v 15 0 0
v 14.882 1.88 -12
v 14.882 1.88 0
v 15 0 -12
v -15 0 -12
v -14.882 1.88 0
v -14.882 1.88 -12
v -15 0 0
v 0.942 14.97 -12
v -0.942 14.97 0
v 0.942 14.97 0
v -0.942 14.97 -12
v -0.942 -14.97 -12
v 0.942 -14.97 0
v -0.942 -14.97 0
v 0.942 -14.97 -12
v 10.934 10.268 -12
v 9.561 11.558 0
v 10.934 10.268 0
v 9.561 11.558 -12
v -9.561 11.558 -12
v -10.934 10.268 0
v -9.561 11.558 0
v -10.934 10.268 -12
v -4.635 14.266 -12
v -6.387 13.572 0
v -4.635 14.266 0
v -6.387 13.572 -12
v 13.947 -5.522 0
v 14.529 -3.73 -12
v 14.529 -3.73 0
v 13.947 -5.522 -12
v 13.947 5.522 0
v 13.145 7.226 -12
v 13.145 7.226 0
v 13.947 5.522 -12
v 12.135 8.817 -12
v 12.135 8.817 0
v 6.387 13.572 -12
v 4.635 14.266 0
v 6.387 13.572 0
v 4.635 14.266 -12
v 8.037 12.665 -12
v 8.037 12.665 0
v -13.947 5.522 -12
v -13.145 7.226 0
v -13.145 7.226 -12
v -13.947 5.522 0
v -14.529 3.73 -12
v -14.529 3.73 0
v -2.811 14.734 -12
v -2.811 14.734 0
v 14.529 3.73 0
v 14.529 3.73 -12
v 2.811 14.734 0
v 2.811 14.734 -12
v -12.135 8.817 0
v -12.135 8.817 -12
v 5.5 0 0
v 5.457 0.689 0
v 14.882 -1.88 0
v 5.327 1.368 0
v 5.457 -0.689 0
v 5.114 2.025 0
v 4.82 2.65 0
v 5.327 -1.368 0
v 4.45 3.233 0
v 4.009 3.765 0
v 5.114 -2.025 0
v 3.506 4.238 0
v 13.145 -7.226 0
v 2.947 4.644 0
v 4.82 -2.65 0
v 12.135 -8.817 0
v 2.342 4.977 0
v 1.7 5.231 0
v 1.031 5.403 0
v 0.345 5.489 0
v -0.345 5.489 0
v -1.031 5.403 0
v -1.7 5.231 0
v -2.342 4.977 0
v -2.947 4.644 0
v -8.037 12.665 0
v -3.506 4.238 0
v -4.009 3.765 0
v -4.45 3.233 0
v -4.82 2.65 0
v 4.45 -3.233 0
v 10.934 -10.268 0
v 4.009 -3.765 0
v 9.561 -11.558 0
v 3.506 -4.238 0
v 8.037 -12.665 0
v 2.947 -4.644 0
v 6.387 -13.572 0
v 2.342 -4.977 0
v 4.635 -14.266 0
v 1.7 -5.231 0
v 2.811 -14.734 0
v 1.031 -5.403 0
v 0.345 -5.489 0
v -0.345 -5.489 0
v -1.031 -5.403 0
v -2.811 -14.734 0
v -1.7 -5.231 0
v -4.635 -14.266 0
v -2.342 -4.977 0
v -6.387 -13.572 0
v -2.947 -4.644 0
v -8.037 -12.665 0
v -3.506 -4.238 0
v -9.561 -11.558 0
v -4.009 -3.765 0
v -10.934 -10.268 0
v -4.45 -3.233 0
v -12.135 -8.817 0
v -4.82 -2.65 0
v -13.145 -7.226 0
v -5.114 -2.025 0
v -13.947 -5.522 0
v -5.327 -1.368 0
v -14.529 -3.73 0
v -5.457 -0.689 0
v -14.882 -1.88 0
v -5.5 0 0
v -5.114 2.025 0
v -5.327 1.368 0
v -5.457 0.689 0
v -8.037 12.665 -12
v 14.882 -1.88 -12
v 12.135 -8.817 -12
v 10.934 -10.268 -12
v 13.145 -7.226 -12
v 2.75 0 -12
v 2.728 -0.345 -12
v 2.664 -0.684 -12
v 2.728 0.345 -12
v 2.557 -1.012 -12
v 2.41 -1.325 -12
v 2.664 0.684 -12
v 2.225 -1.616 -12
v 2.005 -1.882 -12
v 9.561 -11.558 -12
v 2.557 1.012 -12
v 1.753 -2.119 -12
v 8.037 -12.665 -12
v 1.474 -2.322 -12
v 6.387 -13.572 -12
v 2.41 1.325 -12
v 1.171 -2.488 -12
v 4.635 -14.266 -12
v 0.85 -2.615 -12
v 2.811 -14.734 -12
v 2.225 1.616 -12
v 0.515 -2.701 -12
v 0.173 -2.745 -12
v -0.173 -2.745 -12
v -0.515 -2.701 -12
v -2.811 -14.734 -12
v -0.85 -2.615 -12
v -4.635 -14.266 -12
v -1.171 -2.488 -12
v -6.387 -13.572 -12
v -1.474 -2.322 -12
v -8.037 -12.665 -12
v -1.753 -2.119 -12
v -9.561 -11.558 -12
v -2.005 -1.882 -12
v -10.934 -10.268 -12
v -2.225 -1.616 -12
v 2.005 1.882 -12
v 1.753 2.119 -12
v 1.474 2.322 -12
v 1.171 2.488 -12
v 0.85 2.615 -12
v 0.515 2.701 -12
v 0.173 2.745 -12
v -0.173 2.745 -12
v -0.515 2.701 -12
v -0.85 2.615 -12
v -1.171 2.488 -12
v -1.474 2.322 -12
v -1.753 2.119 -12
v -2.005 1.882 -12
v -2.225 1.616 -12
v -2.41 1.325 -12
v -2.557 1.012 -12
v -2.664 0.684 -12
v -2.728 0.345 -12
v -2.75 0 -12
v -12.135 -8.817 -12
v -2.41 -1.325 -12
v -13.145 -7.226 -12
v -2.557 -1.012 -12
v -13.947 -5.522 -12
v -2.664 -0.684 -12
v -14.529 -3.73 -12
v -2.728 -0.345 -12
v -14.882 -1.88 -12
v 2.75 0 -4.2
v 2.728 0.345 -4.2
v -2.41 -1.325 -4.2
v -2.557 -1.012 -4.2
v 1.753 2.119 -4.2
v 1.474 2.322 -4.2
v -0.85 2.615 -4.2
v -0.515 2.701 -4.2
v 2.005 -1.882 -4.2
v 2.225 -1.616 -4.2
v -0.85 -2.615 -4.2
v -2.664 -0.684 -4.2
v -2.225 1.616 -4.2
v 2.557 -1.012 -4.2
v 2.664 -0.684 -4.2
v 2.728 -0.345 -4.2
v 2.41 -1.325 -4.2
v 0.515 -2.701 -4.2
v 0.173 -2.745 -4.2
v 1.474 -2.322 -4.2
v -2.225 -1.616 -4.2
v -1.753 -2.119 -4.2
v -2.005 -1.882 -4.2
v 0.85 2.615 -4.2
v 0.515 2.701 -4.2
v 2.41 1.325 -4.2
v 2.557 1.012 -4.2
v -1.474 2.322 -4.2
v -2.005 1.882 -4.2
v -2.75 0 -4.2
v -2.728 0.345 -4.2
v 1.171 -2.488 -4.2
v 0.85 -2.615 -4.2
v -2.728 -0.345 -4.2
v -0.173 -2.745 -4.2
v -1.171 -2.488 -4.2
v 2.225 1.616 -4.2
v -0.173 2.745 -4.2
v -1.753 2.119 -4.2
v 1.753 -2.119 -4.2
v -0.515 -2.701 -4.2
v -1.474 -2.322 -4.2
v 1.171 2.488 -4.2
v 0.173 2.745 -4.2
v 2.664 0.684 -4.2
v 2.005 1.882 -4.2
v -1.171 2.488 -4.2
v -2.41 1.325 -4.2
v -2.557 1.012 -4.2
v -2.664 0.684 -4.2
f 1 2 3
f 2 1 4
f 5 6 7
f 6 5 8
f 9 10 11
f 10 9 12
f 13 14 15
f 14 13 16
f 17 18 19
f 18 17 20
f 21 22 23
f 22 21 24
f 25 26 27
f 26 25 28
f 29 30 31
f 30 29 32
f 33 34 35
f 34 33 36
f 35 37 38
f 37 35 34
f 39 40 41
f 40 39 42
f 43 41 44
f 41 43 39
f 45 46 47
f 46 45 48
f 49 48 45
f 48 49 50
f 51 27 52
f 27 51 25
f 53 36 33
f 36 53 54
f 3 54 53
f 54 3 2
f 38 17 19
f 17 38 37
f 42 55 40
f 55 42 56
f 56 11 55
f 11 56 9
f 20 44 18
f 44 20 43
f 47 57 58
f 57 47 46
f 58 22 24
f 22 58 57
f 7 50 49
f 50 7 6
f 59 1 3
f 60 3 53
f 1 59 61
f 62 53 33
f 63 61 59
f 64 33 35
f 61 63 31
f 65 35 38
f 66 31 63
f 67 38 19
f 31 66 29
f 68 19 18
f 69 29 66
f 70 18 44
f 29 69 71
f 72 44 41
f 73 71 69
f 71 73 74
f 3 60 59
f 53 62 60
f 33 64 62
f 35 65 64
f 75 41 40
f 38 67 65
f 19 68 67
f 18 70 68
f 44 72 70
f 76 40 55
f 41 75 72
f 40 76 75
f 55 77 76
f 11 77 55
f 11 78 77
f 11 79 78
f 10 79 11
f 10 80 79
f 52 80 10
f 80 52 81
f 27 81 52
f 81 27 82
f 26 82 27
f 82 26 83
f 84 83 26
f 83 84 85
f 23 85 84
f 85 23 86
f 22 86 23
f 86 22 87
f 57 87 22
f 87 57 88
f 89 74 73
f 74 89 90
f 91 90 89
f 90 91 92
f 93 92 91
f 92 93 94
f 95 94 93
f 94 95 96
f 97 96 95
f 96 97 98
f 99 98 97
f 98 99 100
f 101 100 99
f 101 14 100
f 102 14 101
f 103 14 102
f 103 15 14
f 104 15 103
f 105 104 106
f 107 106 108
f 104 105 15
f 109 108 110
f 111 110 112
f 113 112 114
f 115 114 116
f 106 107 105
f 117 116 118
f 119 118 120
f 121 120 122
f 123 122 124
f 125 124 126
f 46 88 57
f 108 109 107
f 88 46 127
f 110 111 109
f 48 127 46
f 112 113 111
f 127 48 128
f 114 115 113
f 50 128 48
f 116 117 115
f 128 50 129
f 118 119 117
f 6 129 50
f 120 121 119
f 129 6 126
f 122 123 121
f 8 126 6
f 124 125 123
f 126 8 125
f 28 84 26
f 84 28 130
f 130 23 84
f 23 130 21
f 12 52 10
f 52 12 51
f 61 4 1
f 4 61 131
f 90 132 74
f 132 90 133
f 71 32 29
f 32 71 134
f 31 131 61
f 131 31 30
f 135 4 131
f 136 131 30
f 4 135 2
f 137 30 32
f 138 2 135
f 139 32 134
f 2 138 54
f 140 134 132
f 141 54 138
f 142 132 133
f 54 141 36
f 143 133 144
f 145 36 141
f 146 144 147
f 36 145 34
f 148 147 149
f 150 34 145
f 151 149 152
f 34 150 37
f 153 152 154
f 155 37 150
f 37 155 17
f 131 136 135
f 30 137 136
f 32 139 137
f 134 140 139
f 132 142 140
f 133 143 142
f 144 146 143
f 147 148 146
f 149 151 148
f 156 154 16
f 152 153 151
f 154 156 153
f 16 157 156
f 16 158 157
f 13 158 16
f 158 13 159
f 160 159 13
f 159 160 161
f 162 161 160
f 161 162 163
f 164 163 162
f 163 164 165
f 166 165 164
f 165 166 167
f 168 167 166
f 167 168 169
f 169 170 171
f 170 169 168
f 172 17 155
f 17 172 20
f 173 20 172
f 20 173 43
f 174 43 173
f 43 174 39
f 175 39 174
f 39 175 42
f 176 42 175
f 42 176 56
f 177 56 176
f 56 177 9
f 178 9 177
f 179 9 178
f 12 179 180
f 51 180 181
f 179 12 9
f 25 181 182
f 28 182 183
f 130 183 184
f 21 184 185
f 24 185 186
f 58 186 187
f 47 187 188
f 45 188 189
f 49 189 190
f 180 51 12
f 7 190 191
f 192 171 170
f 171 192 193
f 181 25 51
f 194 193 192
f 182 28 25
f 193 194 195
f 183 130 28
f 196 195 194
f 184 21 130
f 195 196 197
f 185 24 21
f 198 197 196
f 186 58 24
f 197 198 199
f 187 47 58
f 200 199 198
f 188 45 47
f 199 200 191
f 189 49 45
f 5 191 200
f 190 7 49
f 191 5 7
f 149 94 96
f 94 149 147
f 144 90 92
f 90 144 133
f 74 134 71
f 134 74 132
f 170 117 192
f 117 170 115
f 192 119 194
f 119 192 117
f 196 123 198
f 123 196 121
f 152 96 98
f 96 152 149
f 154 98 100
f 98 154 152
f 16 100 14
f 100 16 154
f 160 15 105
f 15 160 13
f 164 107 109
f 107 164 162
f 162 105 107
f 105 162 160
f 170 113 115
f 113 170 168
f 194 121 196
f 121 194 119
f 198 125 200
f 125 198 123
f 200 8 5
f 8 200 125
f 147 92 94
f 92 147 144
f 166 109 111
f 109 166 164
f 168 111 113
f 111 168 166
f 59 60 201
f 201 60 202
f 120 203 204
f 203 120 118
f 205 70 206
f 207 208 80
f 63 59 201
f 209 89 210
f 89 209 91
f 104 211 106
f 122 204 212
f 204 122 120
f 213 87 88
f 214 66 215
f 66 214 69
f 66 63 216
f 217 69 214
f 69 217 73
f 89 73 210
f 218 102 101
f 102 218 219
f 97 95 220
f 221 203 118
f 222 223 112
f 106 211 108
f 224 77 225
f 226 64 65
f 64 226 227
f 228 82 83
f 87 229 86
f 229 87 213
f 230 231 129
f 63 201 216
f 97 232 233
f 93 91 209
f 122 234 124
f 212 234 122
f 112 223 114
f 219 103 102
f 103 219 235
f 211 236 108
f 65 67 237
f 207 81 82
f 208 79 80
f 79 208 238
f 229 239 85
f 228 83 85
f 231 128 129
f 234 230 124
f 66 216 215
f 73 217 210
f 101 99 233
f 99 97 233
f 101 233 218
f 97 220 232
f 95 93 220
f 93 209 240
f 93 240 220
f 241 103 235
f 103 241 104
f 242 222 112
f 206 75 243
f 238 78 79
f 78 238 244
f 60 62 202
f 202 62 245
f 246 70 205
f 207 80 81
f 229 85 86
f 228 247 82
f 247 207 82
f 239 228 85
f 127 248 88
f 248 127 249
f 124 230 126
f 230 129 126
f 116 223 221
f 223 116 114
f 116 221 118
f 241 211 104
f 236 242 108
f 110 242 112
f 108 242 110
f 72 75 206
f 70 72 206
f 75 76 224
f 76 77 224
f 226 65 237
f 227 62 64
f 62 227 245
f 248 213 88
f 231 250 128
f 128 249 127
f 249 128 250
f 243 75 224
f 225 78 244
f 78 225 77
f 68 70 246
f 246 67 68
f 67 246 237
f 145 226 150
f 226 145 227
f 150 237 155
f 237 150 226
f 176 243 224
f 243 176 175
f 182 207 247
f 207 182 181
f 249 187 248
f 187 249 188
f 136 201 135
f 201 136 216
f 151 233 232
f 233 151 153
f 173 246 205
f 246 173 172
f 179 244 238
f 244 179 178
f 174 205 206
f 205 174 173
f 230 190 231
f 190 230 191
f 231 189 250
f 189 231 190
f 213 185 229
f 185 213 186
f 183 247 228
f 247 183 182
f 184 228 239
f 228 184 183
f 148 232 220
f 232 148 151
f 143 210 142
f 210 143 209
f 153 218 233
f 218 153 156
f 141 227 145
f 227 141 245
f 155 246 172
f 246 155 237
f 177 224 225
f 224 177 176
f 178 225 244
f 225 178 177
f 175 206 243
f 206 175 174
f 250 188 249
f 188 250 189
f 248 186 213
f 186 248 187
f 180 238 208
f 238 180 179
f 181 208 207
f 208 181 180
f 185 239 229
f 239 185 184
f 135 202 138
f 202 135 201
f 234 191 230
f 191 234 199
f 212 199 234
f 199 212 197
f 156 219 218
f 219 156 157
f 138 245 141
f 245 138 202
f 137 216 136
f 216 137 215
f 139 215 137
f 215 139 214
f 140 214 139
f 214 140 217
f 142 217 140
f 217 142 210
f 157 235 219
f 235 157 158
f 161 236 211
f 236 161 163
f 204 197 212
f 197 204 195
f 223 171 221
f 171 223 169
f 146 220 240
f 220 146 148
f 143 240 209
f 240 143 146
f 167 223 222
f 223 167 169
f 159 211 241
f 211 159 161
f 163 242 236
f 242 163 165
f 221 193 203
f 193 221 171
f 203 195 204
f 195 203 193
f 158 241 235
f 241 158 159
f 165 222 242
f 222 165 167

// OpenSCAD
$fn = 50;


difference() {
	union() {
		translate(v = [0, 0, -12.0000000000]) {
			cylinder(h = 12, r = 15.0000000000);
		}
		translate(v = [0, 0, -12.0000000000]) {
			cylinder(h = 12, r = 2.8750000000);
		}
	}
	union() {
		translate(v = [0, 0, 0]) {
			rotate(a = [0, 0, 0]) {
				difference() {
					union() {
						translate(v = [0, 0, -12.0000000000]) {
							cylinder(h = 12, r = 2.2500000000);
						}
						translate(v = [0, 0, -4.2000000000]) {
							cylinder(h = 4.2000000000, r1 = 2.7500000000, r2 = 5.5000000000);
						}
						translate(v = [0, 0, -12.0000000000]) {
							cylinder(h = 12, r = 2.7500000000);
						}
						translate(v = [0, 0, -12.0000000000]) {
							cylinder(h = 12, r = 2.2500000000);
						}
					}
					union();
				}
			}
		}
	}
}
